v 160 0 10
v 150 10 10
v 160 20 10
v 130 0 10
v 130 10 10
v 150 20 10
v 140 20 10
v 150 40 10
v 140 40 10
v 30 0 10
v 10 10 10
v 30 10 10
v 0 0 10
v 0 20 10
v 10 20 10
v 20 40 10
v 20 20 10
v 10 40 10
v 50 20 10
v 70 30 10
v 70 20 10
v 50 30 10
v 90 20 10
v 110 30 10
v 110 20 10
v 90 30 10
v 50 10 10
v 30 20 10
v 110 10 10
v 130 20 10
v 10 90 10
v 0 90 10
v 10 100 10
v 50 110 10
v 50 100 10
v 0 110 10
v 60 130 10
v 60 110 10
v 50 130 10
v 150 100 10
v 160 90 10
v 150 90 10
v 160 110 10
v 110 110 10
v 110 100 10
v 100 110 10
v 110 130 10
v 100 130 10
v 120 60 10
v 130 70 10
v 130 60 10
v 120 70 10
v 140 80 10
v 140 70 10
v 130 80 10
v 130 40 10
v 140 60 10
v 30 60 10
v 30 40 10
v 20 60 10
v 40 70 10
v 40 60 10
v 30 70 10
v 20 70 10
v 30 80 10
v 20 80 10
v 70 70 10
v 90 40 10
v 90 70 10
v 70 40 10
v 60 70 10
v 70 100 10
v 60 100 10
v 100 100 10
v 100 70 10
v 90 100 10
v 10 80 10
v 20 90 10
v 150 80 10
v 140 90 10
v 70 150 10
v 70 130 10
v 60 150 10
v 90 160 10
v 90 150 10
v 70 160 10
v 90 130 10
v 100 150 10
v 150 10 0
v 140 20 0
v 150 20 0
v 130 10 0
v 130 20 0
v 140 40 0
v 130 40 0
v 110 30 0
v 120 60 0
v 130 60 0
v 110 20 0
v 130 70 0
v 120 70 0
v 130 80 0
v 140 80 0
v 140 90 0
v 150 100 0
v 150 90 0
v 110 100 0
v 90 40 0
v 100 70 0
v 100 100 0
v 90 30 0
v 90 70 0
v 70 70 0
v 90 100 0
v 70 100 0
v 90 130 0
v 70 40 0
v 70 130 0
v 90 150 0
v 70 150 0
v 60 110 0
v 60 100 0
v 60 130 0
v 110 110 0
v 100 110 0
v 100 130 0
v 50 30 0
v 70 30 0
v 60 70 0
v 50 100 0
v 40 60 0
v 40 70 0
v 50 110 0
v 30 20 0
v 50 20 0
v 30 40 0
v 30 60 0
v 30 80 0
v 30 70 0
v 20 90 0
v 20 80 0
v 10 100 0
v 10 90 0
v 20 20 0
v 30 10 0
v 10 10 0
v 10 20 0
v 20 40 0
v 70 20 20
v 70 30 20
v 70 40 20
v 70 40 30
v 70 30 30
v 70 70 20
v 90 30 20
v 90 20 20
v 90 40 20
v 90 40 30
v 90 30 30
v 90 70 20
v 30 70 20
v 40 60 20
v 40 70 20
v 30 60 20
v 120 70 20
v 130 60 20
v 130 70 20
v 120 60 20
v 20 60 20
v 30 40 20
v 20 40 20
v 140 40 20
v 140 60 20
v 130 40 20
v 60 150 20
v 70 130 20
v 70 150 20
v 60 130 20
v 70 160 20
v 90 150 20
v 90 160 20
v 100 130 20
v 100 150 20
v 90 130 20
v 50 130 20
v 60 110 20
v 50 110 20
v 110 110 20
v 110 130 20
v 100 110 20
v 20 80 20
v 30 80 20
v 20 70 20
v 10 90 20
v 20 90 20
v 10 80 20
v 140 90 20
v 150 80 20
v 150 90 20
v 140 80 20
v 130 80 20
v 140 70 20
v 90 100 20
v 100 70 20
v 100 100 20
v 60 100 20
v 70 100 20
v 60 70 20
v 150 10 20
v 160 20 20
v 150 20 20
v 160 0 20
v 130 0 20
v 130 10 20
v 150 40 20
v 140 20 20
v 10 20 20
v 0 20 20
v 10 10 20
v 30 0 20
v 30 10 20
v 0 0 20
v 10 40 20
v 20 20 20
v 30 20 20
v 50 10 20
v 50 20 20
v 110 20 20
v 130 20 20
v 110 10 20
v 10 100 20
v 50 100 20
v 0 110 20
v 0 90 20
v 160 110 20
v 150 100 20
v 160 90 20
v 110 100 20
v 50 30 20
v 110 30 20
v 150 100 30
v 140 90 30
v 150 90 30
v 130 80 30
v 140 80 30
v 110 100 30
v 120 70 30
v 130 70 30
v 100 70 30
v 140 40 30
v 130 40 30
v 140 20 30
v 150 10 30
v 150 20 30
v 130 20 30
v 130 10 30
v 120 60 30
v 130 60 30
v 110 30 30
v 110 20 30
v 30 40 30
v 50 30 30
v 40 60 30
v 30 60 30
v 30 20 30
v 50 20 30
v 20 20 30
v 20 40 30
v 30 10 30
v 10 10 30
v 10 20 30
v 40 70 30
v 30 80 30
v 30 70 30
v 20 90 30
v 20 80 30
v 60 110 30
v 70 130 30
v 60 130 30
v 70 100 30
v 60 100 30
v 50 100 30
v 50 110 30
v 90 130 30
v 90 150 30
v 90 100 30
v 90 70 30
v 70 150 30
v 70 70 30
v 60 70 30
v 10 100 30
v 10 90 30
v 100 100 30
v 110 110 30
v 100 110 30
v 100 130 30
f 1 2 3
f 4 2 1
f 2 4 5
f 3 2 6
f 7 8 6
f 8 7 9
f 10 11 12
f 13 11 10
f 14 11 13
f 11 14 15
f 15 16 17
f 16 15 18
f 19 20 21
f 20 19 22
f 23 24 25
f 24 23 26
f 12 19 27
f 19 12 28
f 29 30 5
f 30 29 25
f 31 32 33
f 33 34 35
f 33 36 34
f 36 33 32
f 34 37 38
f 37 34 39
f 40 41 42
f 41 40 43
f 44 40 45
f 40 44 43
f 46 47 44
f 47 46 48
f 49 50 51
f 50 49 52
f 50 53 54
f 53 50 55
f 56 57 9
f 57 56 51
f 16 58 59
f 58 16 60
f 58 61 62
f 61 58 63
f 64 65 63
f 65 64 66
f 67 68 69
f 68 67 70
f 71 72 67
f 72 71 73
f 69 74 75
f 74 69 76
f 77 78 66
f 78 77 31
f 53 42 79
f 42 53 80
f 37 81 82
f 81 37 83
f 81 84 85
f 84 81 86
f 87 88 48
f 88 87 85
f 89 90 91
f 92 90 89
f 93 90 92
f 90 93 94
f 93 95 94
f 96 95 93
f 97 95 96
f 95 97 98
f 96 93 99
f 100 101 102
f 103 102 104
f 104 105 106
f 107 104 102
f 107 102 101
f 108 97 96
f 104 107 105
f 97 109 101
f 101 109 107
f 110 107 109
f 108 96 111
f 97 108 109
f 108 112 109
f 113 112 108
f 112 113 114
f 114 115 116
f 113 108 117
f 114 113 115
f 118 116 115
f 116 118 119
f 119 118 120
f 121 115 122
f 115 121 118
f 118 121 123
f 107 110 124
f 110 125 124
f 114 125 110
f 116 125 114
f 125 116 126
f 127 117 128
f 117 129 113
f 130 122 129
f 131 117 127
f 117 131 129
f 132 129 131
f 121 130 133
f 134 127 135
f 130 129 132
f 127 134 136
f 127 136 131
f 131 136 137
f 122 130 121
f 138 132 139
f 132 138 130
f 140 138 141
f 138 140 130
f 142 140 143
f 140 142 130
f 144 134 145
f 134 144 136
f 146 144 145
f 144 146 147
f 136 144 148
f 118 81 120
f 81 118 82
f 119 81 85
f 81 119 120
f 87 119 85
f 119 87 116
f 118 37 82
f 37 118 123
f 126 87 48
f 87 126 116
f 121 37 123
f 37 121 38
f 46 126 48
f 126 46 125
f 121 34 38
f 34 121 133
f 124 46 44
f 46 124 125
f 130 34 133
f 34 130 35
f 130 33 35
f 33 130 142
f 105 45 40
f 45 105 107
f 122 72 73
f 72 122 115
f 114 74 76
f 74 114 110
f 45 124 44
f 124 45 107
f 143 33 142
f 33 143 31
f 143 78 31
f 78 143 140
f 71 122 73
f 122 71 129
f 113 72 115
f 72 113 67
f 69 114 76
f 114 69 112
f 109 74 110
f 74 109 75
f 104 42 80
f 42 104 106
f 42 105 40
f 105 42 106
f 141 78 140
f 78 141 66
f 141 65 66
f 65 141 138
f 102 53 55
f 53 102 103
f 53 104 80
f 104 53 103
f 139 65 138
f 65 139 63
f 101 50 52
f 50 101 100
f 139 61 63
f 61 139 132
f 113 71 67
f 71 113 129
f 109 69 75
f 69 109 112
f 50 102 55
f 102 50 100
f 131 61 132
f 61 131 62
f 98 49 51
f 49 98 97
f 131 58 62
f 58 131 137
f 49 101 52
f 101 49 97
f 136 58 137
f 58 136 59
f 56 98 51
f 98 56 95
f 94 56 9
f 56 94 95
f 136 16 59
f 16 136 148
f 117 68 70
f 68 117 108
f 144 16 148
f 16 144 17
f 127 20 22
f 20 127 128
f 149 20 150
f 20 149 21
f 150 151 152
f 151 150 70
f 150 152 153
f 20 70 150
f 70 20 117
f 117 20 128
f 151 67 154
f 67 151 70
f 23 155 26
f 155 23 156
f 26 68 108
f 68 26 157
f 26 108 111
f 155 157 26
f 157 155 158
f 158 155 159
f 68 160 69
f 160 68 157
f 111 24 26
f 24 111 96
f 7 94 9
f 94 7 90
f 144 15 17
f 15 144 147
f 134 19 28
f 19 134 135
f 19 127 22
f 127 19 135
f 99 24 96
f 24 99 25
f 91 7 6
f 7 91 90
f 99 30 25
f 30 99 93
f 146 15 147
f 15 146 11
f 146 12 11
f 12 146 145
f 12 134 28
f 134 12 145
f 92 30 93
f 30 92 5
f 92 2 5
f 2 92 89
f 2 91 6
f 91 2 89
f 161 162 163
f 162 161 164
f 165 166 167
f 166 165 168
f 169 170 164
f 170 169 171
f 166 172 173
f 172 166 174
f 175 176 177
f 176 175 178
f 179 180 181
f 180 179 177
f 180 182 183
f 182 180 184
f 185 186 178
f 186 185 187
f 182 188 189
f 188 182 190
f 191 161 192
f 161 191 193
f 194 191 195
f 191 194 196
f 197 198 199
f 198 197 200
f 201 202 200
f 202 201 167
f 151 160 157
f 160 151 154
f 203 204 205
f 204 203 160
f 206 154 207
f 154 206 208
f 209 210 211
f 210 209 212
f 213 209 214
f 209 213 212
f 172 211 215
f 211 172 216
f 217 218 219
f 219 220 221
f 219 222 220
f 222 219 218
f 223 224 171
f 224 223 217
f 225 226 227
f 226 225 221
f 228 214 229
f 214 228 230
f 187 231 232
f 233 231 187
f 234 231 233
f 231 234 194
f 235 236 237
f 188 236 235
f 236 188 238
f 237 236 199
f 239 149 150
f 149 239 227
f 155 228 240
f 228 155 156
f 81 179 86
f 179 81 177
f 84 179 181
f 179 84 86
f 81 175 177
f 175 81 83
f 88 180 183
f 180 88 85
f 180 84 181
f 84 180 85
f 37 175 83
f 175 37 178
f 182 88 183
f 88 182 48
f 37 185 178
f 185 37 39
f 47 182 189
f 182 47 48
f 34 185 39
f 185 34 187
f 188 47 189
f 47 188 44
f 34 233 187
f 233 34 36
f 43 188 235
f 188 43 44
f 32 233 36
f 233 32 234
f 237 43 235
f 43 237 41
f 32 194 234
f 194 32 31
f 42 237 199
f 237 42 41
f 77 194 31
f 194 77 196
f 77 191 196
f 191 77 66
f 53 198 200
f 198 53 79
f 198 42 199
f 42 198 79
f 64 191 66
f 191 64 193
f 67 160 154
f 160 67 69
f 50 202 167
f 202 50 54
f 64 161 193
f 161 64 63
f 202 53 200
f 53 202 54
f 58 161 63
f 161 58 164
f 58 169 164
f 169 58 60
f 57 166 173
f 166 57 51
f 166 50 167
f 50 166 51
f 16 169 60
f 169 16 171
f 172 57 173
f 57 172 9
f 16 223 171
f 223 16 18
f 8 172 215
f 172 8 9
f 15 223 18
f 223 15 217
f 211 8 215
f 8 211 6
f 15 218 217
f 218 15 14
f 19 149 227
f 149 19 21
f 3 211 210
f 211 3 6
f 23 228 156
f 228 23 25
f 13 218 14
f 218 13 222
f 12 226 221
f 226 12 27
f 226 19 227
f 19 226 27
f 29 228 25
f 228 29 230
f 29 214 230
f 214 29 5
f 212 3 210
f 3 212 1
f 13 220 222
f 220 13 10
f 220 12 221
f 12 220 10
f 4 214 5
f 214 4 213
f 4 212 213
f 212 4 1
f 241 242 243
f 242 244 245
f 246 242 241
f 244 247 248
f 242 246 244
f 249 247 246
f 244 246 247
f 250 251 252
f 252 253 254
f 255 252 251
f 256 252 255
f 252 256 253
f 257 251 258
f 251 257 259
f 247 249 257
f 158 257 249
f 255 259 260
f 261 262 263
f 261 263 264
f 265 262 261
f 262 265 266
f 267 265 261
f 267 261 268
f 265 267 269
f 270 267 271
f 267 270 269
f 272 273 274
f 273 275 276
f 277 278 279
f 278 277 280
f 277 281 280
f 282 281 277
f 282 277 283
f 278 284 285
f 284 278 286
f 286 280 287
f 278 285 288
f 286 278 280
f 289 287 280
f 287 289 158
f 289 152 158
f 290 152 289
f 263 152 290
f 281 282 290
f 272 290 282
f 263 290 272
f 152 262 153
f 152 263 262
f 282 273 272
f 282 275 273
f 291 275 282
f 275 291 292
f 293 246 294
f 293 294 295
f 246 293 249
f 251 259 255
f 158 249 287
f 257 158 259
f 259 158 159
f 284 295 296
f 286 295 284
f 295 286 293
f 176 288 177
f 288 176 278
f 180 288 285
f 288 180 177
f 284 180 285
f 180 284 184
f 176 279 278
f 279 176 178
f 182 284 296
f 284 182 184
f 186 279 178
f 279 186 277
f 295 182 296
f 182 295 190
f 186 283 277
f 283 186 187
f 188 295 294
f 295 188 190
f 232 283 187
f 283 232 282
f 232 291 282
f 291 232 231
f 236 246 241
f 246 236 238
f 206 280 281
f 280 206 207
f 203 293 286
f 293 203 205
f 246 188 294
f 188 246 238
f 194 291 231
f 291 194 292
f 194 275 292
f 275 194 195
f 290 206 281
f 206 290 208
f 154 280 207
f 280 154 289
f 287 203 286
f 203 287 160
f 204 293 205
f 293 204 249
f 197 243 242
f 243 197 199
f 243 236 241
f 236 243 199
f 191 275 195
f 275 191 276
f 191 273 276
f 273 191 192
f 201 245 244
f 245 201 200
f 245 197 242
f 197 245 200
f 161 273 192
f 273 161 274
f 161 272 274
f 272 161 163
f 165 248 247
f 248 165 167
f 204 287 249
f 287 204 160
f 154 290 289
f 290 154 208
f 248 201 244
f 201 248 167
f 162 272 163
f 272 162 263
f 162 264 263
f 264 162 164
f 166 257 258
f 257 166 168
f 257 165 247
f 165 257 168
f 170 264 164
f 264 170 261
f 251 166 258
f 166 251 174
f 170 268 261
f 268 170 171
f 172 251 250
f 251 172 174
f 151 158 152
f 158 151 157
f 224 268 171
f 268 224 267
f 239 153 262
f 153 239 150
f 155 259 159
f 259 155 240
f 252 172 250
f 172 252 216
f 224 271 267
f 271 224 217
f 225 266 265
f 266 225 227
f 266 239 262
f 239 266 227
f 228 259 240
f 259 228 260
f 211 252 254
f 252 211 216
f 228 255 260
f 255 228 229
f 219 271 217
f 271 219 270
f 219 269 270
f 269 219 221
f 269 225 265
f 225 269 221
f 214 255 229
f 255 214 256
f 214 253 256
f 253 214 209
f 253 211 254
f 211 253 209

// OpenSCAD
/*
 * Starman the Christmas Tree Topper
 * Copyright (c) 2020 Anar Software LLC. < http://anars.com >
 *
 * This program is free software: you can redistribute it and/or modify it under
 * the terms of the GNU General Public License as published by the Free Software
 * Foundation, either version 3 of the License, or (at your option) any later
 * version.
 *
 * This program is distributed in the hope that it will be useful, but WITHOUT
 * ANY WARRANTY; without even the implied warranty of MERCHANTABILITY or FITNESS
 * FOR A PARTICULAR PURPOSE. See the GNU General Public License for more details.
 *
 * You should have received a copy of the GNU General Public License along with
 * this program. If not, see < http://www.gnu.org/licenses/ >
 *
 */

/* [Global] */

/* [Pixel Settings] */

// Pixel Length in mm (X)
pixel_length = 10;

// Pixel Width in mm (Y)
pixel_width = 10;

// Pixel Height in mm (Z)
pixel_height = 10;

/* [Hidden] */

data=[[
     "",
     "       XX",
     "       XX",
     "      XXXX",
     "      XXXX",
     "     XXXXXX",
     " XXXXX XX XXXXX",
     "  XXXX XX XXXX",
     "   XXX XX XXX",
     "    XXXXXXXX",
     "   XXXXXXXXXX",
     "   XXXXXXXXXX",
     "  XXXXX  XXXXX",
     "  XXX      XXX",
     " XX          XX",
     ""
     ],[
     "       XX",
     "      XXXX",
     "      XXXX",
     "     XXXXXX",
     "     XXXXXX",
     "XXXXXXXXXXXXXXXX",
     "XXXXXXXXXXXXXXXX",
     " XXXXXXXXXXXXXX",
     "  XXXXXXXXXXXX",
     "   XXXX  XXXX",
     "  XXXXX  XXXXX",
     "  XXXXX  XXXXX",
     " XXXXXX  XXXXXX",
     " XXXXXX  XXXXXX",
     "XXXXX      XXXXX",
     "XXX          XXX",
     ],[
     "",
     "       XX",
     "       XX",
     "      XXXX",
     "      XXXX",
     "     XXXXXX",
     " XXXXX XX XXXXX",
     "  XXXX XX XXXX",
     "   XXX XX XXX",
     "    XXXXXXXX",
     "   XXXXXXXXXX",
     "   XXXXXXXXXX",
     "  XXXXX  XXXXX",
     "  XXX      XXX",
     " XX          XX",
     ""
     ]];     

for (z = [0 : len(data) - 1])
    for (y = [0 : len(data[z]) - 1])
        if (len(data[z][y]) > 0)
            for (x = [0 : len(data[z][y]) - 1])
                if (data[z][y][x] == "X")
                    translate([x * pixel_length, (len(data[z]) - 1 - y) * pixel_width, z * pixel_height])
                        if (z == 1) {
                            color("#000000")
                            cube([pixel_length, pixel_width, pixel_height]);
                        }
                        else {
                            color("#FFFF00")
                            cube([pixel_length, pixel_width, pixel_height]);
                        }
